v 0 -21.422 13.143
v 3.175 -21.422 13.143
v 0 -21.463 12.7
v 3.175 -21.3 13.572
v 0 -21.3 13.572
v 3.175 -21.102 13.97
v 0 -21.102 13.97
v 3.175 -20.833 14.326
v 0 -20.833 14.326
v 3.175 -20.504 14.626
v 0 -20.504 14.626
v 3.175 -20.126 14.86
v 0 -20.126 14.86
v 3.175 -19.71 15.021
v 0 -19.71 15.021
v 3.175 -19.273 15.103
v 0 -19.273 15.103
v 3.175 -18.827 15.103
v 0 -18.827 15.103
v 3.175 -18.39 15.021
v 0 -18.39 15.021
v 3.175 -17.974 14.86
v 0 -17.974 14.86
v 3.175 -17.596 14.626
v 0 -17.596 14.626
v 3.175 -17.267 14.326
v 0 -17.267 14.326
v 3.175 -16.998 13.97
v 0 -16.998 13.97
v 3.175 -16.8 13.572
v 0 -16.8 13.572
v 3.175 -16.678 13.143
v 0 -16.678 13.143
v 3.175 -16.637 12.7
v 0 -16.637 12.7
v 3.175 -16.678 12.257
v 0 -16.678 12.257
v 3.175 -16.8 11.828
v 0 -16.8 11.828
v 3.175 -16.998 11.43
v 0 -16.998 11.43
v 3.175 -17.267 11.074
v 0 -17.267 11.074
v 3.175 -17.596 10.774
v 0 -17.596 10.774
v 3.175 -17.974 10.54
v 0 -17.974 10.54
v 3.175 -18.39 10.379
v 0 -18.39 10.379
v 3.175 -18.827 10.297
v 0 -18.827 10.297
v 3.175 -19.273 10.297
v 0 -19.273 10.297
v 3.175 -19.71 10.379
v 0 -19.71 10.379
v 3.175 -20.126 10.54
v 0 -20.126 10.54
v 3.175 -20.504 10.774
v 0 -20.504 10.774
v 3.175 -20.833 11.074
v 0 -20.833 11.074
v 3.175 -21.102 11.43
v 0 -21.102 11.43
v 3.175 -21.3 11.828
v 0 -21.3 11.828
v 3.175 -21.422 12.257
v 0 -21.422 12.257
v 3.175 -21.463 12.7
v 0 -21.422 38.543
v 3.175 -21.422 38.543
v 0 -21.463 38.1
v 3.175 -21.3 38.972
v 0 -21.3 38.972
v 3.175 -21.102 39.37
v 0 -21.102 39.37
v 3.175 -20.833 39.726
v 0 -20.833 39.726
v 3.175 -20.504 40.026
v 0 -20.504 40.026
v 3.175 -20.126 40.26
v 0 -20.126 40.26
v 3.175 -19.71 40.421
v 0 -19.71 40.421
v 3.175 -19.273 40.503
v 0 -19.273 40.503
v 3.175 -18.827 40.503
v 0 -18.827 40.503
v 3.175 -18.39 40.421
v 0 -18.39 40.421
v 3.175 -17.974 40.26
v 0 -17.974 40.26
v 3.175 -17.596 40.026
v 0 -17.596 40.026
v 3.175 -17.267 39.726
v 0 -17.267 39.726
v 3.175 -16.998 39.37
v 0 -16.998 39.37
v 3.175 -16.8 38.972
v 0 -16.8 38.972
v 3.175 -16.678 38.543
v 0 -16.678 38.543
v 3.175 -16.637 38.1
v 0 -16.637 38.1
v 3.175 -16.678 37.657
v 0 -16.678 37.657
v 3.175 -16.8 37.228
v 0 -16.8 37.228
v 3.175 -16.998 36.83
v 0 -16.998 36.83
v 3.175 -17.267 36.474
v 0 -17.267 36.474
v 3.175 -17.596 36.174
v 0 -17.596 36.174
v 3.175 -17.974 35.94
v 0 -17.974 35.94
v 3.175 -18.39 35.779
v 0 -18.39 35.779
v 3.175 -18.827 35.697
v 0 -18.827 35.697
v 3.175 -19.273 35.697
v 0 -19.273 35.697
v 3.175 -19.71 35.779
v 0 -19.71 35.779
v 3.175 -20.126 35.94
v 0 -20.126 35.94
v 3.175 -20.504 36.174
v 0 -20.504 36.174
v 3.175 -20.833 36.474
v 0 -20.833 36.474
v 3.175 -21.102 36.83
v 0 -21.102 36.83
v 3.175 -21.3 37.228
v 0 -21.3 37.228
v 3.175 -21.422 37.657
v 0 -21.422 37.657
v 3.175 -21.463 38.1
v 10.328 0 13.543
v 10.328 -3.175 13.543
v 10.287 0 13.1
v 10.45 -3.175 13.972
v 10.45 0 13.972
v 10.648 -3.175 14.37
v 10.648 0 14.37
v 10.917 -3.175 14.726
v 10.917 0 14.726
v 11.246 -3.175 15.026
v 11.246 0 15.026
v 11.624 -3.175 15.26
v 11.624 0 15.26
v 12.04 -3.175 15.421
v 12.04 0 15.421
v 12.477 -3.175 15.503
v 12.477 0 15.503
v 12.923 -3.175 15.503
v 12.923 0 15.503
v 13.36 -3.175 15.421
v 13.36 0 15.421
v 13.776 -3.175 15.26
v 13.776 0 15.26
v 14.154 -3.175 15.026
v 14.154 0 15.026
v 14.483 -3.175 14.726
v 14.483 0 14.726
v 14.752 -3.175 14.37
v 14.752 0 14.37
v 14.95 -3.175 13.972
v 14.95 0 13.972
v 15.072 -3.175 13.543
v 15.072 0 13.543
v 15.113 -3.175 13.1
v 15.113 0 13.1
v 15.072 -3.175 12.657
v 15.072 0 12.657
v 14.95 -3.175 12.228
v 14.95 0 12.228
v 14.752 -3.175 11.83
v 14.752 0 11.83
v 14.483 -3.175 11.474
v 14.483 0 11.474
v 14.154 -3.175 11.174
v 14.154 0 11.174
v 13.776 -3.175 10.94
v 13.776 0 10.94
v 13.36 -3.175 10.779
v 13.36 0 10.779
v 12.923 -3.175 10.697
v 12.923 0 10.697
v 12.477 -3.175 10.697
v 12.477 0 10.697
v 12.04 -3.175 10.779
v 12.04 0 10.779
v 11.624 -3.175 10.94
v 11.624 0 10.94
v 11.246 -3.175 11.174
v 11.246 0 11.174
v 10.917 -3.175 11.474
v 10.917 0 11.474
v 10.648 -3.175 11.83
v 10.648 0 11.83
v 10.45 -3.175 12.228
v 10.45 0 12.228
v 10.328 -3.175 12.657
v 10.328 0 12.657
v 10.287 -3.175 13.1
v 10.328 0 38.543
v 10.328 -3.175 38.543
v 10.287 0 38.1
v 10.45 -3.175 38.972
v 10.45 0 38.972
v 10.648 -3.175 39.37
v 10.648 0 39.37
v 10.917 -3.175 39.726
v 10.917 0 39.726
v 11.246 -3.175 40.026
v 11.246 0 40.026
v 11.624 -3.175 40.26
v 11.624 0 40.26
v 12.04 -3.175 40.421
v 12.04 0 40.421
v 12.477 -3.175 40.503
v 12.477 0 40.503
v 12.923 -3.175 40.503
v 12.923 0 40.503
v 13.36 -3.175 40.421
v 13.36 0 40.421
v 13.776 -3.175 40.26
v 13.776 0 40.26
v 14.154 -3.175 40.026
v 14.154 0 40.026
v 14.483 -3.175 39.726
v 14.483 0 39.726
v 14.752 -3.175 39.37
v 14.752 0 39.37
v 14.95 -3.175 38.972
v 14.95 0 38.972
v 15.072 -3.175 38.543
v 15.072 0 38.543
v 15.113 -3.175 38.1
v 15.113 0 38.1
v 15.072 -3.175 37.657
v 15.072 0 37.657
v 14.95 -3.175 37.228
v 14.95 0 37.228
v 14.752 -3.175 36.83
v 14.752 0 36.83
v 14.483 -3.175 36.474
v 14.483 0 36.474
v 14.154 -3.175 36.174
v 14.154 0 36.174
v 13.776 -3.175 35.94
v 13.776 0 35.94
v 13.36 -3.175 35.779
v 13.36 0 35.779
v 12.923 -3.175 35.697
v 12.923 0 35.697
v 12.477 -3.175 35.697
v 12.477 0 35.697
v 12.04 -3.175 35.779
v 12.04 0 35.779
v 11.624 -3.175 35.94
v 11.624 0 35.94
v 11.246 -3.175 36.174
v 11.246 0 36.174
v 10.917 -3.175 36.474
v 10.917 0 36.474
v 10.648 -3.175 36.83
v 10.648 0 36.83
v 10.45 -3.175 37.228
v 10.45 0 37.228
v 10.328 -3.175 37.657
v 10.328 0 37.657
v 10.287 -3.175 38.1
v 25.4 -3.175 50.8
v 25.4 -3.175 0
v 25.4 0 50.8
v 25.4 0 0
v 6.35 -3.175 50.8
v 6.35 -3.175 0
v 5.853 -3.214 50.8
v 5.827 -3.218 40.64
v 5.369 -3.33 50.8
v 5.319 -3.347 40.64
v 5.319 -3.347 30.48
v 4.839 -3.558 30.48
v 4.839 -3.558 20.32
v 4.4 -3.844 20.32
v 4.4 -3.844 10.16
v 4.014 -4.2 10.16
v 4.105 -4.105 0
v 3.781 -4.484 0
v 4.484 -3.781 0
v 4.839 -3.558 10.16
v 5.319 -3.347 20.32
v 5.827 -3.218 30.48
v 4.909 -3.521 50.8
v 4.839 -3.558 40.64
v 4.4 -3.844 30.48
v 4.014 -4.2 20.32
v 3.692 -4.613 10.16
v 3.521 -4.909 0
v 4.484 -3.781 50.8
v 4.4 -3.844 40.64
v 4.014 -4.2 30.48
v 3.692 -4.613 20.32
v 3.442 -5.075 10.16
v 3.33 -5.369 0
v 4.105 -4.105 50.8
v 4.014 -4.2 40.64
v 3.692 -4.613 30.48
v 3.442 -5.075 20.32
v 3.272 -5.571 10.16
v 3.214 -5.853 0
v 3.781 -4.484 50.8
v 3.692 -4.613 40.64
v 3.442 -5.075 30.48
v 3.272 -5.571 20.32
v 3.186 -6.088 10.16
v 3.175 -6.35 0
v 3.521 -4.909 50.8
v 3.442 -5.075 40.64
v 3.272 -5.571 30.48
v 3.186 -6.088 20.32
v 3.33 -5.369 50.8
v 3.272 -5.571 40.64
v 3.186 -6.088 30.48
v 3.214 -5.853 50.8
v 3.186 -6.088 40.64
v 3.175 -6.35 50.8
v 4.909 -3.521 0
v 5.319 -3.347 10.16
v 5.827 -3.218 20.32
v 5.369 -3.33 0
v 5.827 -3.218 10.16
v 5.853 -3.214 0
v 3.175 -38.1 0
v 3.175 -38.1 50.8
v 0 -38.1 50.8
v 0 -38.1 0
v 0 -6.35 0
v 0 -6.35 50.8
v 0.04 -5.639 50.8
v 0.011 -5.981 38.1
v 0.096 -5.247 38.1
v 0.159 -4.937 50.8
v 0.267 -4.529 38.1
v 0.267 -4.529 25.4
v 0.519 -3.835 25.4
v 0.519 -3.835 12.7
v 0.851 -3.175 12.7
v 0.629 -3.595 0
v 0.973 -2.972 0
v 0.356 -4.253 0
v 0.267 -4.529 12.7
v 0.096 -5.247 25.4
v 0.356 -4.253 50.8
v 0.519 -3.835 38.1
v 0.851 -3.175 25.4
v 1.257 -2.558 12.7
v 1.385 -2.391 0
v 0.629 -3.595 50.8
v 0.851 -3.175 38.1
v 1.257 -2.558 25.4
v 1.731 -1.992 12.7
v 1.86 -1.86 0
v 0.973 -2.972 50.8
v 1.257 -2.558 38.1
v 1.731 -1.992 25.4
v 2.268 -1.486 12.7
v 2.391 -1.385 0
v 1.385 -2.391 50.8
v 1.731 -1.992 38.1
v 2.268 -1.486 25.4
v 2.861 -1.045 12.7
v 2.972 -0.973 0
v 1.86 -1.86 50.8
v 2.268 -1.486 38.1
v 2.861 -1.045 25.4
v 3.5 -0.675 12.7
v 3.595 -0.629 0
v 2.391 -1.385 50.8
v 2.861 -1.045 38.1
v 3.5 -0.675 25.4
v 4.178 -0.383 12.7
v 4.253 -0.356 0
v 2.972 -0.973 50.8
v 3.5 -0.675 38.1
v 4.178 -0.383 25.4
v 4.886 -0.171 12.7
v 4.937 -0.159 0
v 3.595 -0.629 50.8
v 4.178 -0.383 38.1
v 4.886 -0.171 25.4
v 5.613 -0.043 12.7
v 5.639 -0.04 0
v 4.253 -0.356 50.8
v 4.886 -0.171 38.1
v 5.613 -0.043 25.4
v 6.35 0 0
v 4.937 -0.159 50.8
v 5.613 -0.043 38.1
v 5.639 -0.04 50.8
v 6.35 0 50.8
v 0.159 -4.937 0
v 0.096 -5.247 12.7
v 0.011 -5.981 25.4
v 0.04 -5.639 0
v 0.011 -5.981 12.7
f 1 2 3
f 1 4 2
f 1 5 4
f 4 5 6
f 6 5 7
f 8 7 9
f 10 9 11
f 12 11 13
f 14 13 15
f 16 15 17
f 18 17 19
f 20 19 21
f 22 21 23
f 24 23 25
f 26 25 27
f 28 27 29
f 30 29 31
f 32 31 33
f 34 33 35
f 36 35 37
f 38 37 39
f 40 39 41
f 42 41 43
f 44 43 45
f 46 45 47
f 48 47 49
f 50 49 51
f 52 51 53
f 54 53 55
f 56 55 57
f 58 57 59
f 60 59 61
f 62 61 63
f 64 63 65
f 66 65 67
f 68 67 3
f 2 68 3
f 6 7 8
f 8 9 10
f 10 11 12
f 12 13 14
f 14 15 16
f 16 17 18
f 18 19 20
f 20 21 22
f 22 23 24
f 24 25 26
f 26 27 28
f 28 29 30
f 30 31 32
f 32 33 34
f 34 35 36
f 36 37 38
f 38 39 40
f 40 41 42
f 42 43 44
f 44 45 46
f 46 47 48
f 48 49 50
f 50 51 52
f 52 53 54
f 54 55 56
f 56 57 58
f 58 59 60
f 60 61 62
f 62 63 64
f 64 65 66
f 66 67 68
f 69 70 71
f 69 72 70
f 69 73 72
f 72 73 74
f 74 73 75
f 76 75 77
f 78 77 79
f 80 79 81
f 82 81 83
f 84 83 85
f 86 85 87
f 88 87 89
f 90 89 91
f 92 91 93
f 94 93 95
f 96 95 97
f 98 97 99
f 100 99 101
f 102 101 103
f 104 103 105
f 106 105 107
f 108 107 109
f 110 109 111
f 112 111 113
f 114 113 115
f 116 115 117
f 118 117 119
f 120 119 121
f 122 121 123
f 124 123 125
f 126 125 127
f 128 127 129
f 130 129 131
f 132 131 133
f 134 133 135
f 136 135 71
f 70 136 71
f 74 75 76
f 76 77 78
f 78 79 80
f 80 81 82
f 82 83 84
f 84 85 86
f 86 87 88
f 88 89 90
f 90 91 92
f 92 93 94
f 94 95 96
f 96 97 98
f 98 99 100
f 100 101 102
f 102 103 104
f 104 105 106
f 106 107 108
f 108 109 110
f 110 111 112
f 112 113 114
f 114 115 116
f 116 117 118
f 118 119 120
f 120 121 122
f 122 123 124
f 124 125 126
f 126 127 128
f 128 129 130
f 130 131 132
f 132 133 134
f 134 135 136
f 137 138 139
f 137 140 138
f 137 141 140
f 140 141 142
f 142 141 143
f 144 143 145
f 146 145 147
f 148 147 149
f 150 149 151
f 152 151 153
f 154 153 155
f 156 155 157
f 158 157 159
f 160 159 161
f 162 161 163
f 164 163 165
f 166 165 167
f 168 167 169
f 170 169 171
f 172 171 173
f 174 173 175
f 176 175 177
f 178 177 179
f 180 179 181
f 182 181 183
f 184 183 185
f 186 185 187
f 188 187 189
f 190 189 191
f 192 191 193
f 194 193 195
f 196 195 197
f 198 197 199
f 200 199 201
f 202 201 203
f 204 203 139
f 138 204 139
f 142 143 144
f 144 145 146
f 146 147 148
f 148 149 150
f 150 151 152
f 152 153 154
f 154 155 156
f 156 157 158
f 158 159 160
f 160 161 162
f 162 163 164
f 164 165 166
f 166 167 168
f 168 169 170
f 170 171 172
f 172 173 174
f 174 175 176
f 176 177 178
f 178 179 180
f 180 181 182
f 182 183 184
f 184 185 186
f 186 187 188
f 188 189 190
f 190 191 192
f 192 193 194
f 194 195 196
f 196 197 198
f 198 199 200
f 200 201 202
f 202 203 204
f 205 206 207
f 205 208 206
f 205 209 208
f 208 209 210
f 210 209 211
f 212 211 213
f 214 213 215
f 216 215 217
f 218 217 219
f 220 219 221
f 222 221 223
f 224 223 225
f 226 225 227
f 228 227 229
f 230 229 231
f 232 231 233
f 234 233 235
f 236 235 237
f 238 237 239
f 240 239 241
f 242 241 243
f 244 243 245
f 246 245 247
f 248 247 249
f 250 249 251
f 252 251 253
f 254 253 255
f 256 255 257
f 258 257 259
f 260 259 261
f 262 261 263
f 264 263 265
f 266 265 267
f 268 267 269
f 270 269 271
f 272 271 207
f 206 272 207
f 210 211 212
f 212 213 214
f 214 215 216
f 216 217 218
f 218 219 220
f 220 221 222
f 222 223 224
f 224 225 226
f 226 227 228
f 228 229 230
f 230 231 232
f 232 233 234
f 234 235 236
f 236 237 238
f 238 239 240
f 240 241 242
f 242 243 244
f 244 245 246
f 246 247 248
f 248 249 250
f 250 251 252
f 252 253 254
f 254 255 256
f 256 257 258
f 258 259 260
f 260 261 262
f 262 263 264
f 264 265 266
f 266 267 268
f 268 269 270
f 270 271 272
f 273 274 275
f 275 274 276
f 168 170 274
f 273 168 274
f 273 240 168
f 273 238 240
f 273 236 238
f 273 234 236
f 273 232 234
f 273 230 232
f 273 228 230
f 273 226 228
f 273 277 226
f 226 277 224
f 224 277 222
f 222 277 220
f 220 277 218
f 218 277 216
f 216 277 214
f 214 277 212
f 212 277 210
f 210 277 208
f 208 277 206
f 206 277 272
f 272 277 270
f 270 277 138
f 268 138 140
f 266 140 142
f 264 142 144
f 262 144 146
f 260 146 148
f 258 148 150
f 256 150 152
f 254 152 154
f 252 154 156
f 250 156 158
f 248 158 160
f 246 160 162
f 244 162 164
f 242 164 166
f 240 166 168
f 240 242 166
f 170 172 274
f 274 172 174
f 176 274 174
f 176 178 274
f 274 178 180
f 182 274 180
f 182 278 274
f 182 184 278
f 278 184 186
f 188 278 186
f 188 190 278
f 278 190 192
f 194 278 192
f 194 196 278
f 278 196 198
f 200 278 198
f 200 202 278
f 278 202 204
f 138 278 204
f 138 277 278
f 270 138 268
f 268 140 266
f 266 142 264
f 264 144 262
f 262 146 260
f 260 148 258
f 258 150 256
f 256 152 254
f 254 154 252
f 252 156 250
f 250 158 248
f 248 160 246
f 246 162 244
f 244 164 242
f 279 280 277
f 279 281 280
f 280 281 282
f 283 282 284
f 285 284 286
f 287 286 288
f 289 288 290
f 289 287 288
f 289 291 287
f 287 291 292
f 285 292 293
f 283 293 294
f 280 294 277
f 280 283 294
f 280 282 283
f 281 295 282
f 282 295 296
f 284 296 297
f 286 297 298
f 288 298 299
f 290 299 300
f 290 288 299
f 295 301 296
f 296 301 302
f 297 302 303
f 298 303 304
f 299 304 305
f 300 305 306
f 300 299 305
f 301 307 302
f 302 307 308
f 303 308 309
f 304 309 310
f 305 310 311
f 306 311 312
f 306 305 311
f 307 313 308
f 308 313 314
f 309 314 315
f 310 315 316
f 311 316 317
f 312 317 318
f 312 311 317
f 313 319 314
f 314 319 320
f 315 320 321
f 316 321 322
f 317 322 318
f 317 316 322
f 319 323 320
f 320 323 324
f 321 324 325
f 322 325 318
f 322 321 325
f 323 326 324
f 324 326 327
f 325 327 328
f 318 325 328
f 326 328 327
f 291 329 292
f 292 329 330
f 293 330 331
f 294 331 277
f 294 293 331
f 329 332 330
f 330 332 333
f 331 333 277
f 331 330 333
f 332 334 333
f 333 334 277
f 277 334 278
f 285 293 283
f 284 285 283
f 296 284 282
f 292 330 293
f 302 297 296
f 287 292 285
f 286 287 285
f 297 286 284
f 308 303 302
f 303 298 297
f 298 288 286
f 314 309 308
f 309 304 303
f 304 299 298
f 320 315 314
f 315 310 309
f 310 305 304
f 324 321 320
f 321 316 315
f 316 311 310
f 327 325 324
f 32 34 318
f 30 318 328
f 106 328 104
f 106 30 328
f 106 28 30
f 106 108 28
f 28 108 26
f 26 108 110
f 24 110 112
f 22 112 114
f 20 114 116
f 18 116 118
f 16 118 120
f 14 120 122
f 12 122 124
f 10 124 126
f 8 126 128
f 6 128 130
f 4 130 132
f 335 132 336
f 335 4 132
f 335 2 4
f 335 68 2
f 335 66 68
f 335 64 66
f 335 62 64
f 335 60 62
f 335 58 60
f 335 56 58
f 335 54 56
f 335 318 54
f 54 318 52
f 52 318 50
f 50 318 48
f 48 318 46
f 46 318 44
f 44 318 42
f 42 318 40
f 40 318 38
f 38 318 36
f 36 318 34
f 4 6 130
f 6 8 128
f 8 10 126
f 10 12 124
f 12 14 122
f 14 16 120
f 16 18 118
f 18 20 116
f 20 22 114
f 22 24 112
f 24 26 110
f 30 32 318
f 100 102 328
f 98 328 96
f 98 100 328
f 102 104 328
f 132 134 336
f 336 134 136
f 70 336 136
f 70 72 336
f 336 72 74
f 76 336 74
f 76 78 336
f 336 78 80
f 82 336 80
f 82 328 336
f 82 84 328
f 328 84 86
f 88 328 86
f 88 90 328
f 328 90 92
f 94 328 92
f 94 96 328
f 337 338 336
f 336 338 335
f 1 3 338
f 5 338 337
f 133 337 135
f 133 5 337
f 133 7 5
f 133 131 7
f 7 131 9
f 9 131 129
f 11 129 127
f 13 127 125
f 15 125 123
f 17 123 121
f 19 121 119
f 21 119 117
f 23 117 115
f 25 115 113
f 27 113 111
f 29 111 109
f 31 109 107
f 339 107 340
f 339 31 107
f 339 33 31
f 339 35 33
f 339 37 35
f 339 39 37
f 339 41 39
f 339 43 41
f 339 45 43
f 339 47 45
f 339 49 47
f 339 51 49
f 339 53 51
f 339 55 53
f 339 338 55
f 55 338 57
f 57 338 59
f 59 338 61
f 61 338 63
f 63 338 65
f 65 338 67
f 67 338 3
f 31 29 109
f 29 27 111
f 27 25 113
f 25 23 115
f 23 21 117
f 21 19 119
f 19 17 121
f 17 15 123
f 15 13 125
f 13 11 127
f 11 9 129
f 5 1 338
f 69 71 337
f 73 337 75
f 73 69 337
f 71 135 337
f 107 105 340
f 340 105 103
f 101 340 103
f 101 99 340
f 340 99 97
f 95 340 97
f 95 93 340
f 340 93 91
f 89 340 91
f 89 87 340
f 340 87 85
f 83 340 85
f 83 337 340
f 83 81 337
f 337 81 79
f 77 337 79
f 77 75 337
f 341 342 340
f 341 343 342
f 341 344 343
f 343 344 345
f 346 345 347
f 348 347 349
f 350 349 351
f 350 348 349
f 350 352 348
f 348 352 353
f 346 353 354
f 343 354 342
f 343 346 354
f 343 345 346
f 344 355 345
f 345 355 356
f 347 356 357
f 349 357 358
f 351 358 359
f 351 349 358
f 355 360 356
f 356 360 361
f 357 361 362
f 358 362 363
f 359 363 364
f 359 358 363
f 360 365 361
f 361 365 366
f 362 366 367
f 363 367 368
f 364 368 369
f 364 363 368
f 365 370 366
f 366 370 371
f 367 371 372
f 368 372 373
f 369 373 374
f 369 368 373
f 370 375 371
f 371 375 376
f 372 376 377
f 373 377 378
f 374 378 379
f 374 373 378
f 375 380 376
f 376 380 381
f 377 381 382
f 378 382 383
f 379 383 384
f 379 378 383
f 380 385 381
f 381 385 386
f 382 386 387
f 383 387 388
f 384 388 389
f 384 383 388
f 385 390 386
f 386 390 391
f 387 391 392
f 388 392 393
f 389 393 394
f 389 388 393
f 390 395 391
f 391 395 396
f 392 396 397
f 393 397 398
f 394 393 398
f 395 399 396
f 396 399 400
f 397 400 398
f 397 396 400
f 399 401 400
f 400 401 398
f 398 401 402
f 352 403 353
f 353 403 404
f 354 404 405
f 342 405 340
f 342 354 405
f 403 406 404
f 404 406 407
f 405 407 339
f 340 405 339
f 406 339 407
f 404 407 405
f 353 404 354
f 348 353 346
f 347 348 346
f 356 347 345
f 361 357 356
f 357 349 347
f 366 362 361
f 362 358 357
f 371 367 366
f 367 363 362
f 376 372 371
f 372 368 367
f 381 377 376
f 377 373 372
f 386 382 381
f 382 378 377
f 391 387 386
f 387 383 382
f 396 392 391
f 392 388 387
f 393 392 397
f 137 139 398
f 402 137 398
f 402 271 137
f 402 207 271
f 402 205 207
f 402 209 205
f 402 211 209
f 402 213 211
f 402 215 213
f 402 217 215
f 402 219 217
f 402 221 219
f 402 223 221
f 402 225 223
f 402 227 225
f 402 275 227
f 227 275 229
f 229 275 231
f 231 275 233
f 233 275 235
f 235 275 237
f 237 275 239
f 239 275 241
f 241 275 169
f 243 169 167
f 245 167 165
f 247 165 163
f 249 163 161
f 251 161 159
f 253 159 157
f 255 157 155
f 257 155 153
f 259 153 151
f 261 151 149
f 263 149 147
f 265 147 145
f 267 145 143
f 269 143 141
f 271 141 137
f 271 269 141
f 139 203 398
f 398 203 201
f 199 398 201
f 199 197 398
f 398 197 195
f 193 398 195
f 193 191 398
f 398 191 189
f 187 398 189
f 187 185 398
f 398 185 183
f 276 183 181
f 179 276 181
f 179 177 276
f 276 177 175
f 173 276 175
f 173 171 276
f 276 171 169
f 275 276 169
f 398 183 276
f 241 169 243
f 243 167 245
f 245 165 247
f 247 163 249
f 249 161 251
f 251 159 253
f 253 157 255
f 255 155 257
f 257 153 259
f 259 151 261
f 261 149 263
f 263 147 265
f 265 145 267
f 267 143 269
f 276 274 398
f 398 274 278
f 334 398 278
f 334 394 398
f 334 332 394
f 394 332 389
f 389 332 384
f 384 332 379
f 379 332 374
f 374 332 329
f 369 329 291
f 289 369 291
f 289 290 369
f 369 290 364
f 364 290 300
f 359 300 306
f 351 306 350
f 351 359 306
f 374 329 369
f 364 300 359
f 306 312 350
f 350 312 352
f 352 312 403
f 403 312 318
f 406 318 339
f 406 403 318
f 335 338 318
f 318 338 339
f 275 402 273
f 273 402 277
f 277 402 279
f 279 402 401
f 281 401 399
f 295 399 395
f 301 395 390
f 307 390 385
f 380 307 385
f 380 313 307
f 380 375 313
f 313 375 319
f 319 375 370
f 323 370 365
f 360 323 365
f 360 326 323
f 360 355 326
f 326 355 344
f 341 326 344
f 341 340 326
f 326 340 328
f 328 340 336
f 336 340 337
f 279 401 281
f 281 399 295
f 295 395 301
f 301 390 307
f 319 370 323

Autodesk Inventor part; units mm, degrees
ref_plane "YZ Plane" through (0, 0, 0) normal (1, 0, 0) x (0, 1, 0)
ref_plane "XZ Plane" through (0, 0, 0) normal (0, 1, 0) x (-1, 0, 0)
ref_plane "XY Plane" through (0, 0, 0) normal (0, 0, 1) x (1, 0, 0)
sketch "Sketch1" plane through (0, 0, 0) normal (0, 0, 1) x (1, 0, 0)
  line L0 (6.35, 0) -> (25.4, 0)
  line L1 (25.4, 0) -> (25.4, -3.175)
  line L2 (25.4, -3.175) -> (6.35, -3.175)
  line L3 (3.175, -6.35) -> (3.175, -38.1)
  line L4 (3.175, -38.1) -> (0, -38.1)
  line L5 (0, -38.1) -> (0, -6.35)
  arc A0 (6.35, -3.175) -> (3.175, -6.35) centre (6.35, -6.35) ccw
  arc A1 (6.35, 0) -> (0, -6.35) centre (6.35, -6.35) ccw
  point P0 (0, 0)
  dimension "d0" = 3.175
  dimension "d1" = 38.1
  dimension "d2" = 3.175
  dimension "d3" = 6.35
  dimension "d6" = 25.4
extrude "Extrusion1" add sketch "Sketch1" along normal blind 50.8
hole "Hole1" at (12.7, -3.175, 38.1) direction (0, 1, 0) diameter 4.826 depth 25.4 tip angle 118
pattern_linear "Rectangular Pattern1" count 2 spacing 25 along (0, 0, -1) of "Hole1"
hole "Hole2" at (3.175, -19.05, 38.1) direction (-1, 0, 0) diameter 4.826 depth 25.4 tip angle 118
pattern_linear "Rectangular Pattern2" count 2 spacing 25.4 along (0, 0, -1) of "Hole2"
properties part number "GE-12061"
